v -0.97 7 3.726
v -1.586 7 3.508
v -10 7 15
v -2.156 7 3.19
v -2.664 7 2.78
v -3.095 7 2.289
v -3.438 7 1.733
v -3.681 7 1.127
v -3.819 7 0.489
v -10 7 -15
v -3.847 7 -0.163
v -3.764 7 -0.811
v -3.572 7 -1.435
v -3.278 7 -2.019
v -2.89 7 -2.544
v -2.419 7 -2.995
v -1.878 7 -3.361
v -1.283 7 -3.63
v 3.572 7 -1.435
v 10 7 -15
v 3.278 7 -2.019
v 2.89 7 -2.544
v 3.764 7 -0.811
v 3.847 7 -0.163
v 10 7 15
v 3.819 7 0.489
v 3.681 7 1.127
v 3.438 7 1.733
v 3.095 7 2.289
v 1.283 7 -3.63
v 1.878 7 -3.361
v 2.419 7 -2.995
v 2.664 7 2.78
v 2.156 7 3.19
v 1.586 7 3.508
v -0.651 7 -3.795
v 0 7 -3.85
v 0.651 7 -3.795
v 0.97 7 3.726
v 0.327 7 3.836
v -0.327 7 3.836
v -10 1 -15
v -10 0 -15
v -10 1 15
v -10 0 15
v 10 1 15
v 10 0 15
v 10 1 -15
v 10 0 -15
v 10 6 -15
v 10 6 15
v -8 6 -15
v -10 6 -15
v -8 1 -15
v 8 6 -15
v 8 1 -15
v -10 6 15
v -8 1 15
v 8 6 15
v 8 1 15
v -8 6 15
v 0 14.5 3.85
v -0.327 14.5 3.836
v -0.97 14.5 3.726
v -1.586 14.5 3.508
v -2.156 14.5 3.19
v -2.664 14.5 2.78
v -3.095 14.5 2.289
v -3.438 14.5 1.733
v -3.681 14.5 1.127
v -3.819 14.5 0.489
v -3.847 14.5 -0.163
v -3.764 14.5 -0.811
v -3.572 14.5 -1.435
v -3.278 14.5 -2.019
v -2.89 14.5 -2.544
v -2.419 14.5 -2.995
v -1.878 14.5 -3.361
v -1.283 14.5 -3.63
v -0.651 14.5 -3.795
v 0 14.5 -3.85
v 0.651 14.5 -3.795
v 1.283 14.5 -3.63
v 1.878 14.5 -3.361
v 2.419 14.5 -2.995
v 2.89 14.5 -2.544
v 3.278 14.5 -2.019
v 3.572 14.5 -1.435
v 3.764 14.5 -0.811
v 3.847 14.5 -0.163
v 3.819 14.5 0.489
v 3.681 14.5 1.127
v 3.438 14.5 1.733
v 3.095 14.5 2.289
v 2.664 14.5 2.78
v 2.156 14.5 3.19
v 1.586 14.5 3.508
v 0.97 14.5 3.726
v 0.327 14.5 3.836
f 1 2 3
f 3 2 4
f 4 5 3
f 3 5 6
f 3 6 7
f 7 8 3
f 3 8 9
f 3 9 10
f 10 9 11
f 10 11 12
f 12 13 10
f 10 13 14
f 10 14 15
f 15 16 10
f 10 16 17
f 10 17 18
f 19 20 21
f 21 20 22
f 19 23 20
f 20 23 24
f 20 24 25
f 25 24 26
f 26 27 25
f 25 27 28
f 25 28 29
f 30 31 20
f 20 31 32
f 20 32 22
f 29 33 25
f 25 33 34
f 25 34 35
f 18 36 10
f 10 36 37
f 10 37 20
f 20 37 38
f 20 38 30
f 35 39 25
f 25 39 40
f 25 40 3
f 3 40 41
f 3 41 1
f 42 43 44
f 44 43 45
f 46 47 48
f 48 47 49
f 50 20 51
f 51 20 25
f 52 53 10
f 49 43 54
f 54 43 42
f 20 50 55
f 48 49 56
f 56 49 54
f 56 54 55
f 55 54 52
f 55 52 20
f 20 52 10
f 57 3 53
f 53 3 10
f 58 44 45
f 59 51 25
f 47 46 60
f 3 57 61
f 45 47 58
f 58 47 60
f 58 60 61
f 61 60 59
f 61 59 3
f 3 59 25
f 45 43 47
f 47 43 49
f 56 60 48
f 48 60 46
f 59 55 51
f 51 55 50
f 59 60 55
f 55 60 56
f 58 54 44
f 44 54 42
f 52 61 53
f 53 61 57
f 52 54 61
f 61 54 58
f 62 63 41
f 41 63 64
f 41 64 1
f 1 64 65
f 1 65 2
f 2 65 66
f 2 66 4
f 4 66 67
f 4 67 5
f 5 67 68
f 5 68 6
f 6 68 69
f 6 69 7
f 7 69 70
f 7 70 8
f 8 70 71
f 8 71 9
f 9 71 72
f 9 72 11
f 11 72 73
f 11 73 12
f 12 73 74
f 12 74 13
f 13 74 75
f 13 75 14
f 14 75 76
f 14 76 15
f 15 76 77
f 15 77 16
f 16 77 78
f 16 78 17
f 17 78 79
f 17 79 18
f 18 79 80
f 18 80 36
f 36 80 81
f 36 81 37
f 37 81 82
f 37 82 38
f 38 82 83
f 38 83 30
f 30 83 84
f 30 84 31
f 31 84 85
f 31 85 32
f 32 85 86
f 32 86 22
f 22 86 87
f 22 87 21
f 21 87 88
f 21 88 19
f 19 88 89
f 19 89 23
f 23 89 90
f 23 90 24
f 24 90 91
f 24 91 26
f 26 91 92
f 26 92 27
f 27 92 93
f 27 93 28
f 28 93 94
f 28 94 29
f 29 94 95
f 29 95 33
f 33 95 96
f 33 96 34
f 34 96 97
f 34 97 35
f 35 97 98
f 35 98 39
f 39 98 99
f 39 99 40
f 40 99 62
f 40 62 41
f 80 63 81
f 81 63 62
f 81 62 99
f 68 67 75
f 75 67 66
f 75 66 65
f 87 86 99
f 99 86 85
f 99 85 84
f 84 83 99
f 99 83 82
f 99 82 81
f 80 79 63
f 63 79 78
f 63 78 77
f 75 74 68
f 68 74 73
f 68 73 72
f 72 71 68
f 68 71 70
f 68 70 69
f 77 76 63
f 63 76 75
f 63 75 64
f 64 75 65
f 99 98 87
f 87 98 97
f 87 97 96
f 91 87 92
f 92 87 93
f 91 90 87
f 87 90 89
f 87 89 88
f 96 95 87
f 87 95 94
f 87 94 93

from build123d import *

# Parameters (mm, degrees)
SKETCH1_W           = 20
SKETCH1_H           = 30
BOSS_EXTRUDE1_DEPTH = 7
SKETCH2_W           = 30
SKETCH2_H           = 5
CUT_EXTRUDE1_DEPTH  = 2
SKETCH3_W           = 30
SKETCH3_H           = 5
CUT_EXTRUDE2_DEPTH  = 2
SKETCH4_R           = 3.85
BOSS_EXTRUDE2_DEPTH = 7.5


with BuildPart() as part:
    # Sketch1 → Boss-Extrude1 (new body)
    with BuildSketch(Plane(origin=(0, 0, 0), x_dir=(1, 0, 0), z_dir=(0, 1, 0))):
        Rectangle(SKETCH1_W, SKETCH1_H)
    extrude(amount=BOSS_EXTRUDE1_DEPTH)

    # Sketch2 → Cut-Extrude1 (cut)
    with BuildSketch(Plane(origin=(10, 0, 0), x_dir=(0, 0, -1), z_dir=(1, 0, 0))):
        with Locations((0, 3.5)):
            Rectangle(SKETCH2_W, SKETCH2_H)
    extrude(amount=-CUT_EXTRUDE1_DEPTH, mode=Mode.SUBTRACT)

    # Sketch3 → Cut-Extrude2 (cut)
    with BuildSketch(Plane.ZY.offset(10)):
        with Locations((0, 3.5)):
            Rectangle(SKETCH3_W, SKETCH3_H)
    extrude(amount=-CUT_EXTRUDE2_DEPTH, mode=Mode.SUBTRACT)

    # Sketch4 → Boss-Extrude2 (add)
    with BuildSketch(Plane(origin=(0, 7, 0), x_dir=(1, 0, 0), z_dir=(0, 1, 0))):
        Circle(SKETCH4_R)
    extrude(amount=BOSS_EXTRUDE2_DEPTH)


solid = part.part
